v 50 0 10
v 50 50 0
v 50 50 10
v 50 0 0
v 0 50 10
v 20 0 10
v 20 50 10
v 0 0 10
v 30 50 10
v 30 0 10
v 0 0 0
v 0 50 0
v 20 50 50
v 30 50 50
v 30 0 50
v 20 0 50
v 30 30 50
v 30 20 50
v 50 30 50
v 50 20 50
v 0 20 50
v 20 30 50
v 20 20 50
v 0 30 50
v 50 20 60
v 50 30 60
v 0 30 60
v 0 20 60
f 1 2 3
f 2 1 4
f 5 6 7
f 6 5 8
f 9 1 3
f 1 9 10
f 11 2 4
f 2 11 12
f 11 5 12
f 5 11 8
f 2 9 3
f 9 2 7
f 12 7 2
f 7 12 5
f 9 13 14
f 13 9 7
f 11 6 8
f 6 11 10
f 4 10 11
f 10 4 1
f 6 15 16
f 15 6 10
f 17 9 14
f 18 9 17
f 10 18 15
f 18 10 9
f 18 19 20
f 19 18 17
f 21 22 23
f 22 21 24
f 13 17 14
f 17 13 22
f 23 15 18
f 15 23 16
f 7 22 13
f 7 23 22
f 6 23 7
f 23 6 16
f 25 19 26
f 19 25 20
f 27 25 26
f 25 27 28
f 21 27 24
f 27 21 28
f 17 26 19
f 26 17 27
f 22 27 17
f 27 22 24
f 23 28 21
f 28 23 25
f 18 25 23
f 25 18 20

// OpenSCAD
// Base block dimensions
base_block_length = 50;  // Length of the base block
base_block_width = 50;   // Width of the base block
base_block_height = 10;  // Height of the base block

// Vertical block dimensions
vertical_block_length = 10;  // Length of the vertical block
vertical_block_width = 50;   // Width of the vertical block
vertical_block_height = 40;  // Height of the vertical block

// Horizontal block dimensions
horizontal_block_length = 50;  // Length of the horizontal block
horizontal_block_width = 10;   // Width of the horizontal block
horizontal_block_height = 10;  // Height of the horizontal block

// Base block
module base_block() {
    cube([base_block_length, base_block_width, base_block_height]);
}

// Vertical block
module vertical_block() {
    translate([(base_block_length - vertical_block_length) / 2, 0, base_block_height])
        cube([vertical_block_length, vertical_block_width, vertical_block_height]);
}

// Horizontal block
module horizontal_block() {
    translate([0, (base_block_width - horizontal_block_width) / 2, base_block_height + vertical_block_height])
        cube([horizontal_block_length, horizontal_block_width, horizontal_block_height]);
}

// Assemble the model
module flexible_coupling() {
    base_block();
    vertical_block();
    horizontal_block();
}

// Render the model
flexible_coupling();
